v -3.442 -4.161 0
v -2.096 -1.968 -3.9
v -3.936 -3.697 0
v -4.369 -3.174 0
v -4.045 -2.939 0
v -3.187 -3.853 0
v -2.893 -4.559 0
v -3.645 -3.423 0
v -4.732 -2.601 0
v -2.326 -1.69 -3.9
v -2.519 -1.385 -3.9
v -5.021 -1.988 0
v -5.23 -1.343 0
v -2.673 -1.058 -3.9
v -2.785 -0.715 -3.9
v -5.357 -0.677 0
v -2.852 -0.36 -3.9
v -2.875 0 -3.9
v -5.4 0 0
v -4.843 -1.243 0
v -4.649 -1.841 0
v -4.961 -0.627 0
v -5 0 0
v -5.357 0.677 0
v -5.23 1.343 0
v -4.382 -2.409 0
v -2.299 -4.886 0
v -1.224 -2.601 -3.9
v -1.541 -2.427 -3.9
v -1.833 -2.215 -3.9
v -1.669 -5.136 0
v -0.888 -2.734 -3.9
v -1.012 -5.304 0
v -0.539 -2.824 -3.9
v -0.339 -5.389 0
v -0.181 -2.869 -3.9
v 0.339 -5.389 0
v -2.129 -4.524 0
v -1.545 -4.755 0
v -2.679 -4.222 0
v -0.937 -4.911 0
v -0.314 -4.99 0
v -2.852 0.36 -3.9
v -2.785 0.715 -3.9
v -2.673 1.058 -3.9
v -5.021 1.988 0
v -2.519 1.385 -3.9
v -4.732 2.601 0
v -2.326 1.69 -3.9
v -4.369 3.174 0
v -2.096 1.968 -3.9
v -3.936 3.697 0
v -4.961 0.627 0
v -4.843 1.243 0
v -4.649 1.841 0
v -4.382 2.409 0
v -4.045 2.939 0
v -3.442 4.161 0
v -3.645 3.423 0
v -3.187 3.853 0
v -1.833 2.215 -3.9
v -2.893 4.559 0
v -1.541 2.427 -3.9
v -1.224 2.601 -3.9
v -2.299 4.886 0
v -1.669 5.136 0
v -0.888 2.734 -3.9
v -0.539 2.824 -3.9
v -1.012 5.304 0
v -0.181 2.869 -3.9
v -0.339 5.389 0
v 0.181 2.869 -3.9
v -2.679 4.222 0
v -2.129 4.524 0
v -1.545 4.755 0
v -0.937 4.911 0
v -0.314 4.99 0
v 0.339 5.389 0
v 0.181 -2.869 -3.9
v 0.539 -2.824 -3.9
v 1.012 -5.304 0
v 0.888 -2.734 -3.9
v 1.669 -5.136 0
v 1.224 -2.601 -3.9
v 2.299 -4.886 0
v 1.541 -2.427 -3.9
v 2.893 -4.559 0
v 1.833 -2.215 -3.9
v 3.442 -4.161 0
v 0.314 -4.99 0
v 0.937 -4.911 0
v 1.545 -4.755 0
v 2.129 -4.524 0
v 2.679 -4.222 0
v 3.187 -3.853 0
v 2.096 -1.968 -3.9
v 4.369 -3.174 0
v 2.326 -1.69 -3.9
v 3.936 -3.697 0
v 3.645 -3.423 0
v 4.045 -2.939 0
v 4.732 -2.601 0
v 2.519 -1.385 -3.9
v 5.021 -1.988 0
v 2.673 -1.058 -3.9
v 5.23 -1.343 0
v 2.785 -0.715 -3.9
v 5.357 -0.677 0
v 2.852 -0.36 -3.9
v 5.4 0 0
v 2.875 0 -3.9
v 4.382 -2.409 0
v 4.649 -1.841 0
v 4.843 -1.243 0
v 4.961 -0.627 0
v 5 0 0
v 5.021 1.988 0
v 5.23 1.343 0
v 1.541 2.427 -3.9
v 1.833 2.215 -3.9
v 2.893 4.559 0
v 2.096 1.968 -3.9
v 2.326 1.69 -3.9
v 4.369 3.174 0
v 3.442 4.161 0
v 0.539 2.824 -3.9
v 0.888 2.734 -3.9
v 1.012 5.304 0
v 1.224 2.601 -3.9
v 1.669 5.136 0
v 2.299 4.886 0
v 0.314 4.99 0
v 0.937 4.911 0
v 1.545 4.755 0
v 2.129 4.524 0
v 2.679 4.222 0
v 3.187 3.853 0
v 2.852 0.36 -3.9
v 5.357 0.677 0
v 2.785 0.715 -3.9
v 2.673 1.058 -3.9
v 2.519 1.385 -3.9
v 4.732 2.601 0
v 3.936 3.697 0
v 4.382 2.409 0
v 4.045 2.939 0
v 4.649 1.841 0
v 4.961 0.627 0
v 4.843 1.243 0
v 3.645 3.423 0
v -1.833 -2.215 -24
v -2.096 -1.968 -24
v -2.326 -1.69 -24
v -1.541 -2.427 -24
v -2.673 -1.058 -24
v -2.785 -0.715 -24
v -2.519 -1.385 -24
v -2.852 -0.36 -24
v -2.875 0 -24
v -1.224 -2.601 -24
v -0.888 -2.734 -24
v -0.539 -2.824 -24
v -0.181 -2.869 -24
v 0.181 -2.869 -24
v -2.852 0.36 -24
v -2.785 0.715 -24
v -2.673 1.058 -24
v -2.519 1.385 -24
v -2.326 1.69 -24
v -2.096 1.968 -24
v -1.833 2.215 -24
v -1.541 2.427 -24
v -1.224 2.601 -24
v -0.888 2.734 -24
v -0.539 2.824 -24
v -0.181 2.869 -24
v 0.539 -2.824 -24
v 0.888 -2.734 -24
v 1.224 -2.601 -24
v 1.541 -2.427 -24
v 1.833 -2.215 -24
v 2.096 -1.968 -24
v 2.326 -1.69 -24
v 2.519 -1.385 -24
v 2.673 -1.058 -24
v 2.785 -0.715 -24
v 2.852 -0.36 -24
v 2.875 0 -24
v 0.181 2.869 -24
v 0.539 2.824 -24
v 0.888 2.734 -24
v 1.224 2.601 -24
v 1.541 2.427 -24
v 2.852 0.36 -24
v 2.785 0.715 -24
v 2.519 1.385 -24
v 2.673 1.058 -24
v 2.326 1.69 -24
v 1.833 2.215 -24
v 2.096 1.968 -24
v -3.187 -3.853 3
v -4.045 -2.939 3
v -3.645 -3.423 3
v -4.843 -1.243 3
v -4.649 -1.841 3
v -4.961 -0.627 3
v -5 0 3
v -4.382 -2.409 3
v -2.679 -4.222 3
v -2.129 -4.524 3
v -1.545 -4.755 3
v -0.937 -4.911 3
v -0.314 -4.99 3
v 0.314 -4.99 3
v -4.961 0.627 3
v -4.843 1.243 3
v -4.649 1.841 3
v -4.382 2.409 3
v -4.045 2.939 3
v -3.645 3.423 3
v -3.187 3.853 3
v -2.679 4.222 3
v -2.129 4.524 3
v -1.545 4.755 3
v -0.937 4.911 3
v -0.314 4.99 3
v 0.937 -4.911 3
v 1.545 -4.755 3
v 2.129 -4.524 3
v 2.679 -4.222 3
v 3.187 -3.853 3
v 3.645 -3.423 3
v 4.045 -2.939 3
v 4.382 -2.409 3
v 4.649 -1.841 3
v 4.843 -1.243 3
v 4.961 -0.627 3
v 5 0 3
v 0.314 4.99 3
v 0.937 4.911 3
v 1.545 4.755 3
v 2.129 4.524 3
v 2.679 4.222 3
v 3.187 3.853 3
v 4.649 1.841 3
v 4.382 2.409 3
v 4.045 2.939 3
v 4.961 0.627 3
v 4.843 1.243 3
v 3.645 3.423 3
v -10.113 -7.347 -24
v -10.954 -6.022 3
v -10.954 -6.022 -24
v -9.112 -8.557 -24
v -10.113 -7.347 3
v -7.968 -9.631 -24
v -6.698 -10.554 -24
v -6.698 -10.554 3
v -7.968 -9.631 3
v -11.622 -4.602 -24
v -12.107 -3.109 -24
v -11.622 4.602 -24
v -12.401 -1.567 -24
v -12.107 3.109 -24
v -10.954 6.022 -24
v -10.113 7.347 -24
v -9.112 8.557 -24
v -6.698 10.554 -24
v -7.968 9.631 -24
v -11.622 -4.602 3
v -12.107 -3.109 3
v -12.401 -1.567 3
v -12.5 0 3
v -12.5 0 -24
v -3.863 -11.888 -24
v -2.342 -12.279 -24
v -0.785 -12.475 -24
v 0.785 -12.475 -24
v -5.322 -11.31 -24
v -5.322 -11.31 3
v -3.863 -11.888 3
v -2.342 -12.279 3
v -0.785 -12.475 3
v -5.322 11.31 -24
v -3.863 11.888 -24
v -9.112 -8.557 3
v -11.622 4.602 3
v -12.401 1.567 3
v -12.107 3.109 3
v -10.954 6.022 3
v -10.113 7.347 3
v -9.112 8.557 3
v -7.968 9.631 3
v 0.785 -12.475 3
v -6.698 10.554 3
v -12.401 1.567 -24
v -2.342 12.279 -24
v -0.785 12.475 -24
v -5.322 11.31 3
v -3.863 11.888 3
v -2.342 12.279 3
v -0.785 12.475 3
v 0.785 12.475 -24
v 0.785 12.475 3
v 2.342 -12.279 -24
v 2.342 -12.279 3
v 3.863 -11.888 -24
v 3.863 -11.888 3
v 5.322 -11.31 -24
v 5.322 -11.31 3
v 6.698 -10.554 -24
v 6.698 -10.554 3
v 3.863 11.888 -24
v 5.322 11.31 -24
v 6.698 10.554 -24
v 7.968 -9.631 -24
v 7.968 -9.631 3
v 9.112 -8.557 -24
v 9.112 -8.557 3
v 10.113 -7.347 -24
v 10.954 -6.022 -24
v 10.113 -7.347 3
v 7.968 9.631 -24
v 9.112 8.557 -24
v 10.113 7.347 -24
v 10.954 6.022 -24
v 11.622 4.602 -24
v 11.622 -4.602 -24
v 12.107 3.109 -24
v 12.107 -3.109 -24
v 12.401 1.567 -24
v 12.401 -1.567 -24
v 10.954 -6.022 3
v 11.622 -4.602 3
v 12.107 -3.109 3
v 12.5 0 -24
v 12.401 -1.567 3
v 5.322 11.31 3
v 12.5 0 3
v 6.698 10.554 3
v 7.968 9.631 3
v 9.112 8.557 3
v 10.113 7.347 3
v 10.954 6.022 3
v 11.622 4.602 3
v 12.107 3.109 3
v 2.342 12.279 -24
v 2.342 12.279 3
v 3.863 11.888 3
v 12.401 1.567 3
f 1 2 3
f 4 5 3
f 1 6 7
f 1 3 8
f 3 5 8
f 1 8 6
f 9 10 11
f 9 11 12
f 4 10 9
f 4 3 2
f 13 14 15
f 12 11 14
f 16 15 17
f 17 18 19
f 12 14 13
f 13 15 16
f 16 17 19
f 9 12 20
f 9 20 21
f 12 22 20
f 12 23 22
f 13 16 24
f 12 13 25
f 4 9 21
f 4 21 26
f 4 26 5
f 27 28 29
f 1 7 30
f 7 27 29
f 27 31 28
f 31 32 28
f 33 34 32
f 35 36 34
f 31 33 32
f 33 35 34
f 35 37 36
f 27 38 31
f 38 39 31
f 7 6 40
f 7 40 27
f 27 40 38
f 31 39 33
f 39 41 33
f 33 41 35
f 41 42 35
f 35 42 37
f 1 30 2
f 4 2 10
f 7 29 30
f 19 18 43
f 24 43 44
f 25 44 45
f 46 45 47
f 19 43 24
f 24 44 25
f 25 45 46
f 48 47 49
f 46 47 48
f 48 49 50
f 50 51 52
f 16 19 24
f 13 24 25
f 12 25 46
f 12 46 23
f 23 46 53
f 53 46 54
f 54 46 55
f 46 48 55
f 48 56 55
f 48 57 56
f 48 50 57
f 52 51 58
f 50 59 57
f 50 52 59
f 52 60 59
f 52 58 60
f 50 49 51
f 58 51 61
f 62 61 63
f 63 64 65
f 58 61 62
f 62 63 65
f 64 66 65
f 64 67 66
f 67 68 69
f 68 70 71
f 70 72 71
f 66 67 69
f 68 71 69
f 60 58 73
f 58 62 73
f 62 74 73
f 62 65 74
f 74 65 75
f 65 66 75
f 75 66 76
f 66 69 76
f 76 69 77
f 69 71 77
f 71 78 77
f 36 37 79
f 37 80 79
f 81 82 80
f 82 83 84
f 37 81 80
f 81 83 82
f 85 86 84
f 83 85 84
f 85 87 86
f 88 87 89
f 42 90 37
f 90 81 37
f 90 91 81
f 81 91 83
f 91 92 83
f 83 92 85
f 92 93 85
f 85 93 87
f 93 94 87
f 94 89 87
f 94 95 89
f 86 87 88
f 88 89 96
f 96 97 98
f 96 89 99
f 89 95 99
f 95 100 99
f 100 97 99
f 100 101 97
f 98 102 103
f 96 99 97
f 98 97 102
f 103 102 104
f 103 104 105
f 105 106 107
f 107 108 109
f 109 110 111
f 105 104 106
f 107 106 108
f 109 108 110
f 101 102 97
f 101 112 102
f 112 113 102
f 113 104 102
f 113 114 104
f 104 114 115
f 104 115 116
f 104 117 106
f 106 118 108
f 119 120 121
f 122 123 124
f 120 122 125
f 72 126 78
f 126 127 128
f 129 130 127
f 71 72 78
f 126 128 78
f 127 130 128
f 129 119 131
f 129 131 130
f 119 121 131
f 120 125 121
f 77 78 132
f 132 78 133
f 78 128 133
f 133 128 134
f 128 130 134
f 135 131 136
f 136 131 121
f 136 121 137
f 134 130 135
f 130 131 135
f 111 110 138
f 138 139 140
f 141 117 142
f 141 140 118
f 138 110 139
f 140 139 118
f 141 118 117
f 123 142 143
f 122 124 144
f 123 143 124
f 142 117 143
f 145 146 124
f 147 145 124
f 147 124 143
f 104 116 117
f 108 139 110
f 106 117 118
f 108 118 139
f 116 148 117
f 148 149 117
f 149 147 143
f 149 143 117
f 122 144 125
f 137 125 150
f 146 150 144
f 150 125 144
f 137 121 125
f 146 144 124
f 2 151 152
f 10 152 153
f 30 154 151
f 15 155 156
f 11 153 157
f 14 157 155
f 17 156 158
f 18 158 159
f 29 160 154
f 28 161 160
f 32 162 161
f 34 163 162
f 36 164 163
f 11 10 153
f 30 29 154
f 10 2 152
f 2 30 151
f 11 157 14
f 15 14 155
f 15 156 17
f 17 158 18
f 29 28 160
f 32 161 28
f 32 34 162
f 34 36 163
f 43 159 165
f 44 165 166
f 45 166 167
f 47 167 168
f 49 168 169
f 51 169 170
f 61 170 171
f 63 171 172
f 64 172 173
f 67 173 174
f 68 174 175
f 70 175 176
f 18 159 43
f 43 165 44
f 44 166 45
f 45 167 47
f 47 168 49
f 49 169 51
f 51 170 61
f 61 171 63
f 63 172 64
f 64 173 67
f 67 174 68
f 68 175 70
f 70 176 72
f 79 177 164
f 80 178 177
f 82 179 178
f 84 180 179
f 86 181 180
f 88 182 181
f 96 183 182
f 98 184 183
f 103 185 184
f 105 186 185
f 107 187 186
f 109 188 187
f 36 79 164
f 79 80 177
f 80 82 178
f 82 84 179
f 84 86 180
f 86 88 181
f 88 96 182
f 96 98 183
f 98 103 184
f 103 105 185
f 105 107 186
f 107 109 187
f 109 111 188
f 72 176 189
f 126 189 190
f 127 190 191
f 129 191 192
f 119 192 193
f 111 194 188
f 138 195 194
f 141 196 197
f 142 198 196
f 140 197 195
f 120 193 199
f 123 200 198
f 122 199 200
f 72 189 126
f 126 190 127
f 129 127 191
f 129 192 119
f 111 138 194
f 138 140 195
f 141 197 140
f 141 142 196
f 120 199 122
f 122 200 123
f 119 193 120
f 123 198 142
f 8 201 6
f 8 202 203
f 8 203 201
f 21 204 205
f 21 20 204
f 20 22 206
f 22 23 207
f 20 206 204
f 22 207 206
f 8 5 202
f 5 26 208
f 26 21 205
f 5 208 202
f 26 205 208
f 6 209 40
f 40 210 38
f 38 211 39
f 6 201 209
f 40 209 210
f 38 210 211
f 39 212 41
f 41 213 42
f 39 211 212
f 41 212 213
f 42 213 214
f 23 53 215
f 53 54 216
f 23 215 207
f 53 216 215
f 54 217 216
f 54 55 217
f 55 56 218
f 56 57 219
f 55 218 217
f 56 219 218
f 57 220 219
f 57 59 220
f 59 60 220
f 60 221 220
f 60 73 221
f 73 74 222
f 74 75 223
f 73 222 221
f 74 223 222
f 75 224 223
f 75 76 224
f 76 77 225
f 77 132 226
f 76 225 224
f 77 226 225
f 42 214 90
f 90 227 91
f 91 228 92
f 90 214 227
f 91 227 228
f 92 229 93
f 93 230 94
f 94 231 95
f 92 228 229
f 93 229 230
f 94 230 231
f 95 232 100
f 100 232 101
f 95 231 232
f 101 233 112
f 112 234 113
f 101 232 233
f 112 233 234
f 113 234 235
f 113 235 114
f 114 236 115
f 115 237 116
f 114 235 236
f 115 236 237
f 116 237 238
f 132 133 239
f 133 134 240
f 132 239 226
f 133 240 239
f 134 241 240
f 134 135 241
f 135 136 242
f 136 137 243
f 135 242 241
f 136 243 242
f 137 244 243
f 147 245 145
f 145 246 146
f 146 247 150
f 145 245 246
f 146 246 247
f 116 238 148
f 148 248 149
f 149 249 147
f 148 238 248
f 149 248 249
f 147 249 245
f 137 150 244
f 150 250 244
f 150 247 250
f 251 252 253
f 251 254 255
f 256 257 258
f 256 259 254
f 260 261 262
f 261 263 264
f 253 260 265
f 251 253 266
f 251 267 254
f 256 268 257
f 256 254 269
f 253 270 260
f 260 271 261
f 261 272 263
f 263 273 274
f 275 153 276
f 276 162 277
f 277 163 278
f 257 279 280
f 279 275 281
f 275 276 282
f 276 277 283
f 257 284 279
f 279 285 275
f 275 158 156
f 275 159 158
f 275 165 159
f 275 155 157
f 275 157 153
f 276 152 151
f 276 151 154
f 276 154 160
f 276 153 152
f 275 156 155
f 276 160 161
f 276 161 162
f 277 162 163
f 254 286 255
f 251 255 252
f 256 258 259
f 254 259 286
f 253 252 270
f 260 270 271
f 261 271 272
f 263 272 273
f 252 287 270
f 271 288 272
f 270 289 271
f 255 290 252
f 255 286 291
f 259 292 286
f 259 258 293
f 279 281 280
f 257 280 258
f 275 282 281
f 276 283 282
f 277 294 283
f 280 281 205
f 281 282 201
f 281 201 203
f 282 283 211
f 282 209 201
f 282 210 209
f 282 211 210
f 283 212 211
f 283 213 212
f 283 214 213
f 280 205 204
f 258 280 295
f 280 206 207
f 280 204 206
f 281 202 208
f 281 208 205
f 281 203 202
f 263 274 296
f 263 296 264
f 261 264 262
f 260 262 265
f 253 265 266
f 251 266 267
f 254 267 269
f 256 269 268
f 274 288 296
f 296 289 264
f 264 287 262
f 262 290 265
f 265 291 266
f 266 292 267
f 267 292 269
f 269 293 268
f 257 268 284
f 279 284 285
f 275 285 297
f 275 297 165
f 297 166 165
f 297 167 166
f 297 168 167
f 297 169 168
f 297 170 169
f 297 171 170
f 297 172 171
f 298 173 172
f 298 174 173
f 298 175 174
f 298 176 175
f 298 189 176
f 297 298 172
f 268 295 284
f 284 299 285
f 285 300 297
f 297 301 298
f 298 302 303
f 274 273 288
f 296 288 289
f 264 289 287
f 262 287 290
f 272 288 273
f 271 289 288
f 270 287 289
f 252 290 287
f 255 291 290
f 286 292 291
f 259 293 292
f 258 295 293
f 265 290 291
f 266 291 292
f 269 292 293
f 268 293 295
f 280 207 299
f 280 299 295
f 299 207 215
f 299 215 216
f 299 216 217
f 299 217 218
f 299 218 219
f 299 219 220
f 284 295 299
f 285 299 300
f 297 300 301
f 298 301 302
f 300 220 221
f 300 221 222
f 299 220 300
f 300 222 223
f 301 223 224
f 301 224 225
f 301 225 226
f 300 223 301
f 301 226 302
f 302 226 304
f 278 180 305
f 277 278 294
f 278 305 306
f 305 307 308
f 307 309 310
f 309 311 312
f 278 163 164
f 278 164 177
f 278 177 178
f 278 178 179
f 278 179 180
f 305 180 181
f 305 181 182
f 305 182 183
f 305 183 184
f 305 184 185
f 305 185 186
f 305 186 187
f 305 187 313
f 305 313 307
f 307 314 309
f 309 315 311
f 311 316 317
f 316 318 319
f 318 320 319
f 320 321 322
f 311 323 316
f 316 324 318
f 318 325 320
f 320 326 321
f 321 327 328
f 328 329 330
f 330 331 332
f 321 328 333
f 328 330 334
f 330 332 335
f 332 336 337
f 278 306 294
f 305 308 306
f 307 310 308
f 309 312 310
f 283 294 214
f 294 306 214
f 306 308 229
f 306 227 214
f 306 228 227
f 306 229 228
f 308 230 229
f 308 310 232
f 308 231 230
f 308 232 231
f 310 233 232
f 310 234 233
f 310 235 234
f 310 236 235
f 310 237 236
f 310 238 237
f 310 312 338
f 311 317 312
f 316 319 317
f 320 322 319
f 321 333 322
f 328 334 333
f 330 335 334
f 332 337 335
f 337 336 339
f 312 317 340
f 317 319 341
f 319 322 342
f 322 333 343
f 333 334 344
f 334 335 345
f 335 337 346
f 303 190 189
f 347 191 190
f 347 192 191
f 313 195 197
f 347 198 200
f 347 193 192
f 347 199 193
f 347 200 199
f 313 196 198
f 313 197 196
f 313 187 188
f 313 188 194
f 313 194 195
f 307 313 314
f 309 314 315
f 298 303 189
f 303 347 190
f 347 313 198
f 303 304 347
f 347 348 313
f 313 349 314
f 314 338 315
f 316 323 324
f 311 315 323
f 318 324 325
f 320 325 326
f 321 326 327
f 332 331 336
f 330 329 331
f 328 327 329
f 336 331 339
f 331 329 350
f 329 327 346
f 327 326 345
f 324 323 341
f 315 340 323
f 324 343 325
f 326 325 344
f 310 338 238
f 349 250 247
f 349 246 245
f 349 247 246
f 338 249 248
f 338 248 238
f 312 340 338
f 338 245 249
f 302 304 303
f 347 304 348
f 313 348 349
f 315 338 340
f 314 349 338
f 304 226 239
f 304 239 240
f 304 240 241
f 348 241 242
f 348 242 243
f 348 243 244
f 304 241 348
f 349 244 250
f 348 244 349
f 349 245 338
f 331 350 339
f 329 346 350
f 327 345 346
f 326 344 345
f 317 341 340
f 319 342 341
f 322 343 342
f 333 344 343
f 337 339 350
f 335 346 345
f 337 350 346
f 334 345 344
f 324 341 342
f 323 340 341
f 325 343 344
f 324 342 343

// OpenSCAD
$fn = 50;


difference() {
	union() {
		translate(v = [0, 0, -24.0000000000]) {
			cylinder(h = 27, r = 12.5000000000);
		}
	}
	union() {
		translate(v = [0, 0, 0]) {
			rotate(a = [0, 0, 0]) {
				difference() {
					union() {
						translate(v = [0, 0, -27.0000000000]) {
							cylinder(h = 27, r = 2.6000000000);
						}
						translate(v = [0, 0, -3.9000000000]) {
							cylinder(h = 3.9000000000, r1 = 2.8750000000, r2 = 5.4000000000);
						}
						translate(v = [0, 0, -27.0000000000]) {
							cylinder(h = 27, r = 2.8750000000);
						}
						translate(v = [0, 0, -27.0000000000]) {
							cylinder(h = 27, r = 2.6000000000);
						}
					}
					union();
				}
			}
		}
		#cylinder(h = 3, r = 5.0000000000);
	}
}
